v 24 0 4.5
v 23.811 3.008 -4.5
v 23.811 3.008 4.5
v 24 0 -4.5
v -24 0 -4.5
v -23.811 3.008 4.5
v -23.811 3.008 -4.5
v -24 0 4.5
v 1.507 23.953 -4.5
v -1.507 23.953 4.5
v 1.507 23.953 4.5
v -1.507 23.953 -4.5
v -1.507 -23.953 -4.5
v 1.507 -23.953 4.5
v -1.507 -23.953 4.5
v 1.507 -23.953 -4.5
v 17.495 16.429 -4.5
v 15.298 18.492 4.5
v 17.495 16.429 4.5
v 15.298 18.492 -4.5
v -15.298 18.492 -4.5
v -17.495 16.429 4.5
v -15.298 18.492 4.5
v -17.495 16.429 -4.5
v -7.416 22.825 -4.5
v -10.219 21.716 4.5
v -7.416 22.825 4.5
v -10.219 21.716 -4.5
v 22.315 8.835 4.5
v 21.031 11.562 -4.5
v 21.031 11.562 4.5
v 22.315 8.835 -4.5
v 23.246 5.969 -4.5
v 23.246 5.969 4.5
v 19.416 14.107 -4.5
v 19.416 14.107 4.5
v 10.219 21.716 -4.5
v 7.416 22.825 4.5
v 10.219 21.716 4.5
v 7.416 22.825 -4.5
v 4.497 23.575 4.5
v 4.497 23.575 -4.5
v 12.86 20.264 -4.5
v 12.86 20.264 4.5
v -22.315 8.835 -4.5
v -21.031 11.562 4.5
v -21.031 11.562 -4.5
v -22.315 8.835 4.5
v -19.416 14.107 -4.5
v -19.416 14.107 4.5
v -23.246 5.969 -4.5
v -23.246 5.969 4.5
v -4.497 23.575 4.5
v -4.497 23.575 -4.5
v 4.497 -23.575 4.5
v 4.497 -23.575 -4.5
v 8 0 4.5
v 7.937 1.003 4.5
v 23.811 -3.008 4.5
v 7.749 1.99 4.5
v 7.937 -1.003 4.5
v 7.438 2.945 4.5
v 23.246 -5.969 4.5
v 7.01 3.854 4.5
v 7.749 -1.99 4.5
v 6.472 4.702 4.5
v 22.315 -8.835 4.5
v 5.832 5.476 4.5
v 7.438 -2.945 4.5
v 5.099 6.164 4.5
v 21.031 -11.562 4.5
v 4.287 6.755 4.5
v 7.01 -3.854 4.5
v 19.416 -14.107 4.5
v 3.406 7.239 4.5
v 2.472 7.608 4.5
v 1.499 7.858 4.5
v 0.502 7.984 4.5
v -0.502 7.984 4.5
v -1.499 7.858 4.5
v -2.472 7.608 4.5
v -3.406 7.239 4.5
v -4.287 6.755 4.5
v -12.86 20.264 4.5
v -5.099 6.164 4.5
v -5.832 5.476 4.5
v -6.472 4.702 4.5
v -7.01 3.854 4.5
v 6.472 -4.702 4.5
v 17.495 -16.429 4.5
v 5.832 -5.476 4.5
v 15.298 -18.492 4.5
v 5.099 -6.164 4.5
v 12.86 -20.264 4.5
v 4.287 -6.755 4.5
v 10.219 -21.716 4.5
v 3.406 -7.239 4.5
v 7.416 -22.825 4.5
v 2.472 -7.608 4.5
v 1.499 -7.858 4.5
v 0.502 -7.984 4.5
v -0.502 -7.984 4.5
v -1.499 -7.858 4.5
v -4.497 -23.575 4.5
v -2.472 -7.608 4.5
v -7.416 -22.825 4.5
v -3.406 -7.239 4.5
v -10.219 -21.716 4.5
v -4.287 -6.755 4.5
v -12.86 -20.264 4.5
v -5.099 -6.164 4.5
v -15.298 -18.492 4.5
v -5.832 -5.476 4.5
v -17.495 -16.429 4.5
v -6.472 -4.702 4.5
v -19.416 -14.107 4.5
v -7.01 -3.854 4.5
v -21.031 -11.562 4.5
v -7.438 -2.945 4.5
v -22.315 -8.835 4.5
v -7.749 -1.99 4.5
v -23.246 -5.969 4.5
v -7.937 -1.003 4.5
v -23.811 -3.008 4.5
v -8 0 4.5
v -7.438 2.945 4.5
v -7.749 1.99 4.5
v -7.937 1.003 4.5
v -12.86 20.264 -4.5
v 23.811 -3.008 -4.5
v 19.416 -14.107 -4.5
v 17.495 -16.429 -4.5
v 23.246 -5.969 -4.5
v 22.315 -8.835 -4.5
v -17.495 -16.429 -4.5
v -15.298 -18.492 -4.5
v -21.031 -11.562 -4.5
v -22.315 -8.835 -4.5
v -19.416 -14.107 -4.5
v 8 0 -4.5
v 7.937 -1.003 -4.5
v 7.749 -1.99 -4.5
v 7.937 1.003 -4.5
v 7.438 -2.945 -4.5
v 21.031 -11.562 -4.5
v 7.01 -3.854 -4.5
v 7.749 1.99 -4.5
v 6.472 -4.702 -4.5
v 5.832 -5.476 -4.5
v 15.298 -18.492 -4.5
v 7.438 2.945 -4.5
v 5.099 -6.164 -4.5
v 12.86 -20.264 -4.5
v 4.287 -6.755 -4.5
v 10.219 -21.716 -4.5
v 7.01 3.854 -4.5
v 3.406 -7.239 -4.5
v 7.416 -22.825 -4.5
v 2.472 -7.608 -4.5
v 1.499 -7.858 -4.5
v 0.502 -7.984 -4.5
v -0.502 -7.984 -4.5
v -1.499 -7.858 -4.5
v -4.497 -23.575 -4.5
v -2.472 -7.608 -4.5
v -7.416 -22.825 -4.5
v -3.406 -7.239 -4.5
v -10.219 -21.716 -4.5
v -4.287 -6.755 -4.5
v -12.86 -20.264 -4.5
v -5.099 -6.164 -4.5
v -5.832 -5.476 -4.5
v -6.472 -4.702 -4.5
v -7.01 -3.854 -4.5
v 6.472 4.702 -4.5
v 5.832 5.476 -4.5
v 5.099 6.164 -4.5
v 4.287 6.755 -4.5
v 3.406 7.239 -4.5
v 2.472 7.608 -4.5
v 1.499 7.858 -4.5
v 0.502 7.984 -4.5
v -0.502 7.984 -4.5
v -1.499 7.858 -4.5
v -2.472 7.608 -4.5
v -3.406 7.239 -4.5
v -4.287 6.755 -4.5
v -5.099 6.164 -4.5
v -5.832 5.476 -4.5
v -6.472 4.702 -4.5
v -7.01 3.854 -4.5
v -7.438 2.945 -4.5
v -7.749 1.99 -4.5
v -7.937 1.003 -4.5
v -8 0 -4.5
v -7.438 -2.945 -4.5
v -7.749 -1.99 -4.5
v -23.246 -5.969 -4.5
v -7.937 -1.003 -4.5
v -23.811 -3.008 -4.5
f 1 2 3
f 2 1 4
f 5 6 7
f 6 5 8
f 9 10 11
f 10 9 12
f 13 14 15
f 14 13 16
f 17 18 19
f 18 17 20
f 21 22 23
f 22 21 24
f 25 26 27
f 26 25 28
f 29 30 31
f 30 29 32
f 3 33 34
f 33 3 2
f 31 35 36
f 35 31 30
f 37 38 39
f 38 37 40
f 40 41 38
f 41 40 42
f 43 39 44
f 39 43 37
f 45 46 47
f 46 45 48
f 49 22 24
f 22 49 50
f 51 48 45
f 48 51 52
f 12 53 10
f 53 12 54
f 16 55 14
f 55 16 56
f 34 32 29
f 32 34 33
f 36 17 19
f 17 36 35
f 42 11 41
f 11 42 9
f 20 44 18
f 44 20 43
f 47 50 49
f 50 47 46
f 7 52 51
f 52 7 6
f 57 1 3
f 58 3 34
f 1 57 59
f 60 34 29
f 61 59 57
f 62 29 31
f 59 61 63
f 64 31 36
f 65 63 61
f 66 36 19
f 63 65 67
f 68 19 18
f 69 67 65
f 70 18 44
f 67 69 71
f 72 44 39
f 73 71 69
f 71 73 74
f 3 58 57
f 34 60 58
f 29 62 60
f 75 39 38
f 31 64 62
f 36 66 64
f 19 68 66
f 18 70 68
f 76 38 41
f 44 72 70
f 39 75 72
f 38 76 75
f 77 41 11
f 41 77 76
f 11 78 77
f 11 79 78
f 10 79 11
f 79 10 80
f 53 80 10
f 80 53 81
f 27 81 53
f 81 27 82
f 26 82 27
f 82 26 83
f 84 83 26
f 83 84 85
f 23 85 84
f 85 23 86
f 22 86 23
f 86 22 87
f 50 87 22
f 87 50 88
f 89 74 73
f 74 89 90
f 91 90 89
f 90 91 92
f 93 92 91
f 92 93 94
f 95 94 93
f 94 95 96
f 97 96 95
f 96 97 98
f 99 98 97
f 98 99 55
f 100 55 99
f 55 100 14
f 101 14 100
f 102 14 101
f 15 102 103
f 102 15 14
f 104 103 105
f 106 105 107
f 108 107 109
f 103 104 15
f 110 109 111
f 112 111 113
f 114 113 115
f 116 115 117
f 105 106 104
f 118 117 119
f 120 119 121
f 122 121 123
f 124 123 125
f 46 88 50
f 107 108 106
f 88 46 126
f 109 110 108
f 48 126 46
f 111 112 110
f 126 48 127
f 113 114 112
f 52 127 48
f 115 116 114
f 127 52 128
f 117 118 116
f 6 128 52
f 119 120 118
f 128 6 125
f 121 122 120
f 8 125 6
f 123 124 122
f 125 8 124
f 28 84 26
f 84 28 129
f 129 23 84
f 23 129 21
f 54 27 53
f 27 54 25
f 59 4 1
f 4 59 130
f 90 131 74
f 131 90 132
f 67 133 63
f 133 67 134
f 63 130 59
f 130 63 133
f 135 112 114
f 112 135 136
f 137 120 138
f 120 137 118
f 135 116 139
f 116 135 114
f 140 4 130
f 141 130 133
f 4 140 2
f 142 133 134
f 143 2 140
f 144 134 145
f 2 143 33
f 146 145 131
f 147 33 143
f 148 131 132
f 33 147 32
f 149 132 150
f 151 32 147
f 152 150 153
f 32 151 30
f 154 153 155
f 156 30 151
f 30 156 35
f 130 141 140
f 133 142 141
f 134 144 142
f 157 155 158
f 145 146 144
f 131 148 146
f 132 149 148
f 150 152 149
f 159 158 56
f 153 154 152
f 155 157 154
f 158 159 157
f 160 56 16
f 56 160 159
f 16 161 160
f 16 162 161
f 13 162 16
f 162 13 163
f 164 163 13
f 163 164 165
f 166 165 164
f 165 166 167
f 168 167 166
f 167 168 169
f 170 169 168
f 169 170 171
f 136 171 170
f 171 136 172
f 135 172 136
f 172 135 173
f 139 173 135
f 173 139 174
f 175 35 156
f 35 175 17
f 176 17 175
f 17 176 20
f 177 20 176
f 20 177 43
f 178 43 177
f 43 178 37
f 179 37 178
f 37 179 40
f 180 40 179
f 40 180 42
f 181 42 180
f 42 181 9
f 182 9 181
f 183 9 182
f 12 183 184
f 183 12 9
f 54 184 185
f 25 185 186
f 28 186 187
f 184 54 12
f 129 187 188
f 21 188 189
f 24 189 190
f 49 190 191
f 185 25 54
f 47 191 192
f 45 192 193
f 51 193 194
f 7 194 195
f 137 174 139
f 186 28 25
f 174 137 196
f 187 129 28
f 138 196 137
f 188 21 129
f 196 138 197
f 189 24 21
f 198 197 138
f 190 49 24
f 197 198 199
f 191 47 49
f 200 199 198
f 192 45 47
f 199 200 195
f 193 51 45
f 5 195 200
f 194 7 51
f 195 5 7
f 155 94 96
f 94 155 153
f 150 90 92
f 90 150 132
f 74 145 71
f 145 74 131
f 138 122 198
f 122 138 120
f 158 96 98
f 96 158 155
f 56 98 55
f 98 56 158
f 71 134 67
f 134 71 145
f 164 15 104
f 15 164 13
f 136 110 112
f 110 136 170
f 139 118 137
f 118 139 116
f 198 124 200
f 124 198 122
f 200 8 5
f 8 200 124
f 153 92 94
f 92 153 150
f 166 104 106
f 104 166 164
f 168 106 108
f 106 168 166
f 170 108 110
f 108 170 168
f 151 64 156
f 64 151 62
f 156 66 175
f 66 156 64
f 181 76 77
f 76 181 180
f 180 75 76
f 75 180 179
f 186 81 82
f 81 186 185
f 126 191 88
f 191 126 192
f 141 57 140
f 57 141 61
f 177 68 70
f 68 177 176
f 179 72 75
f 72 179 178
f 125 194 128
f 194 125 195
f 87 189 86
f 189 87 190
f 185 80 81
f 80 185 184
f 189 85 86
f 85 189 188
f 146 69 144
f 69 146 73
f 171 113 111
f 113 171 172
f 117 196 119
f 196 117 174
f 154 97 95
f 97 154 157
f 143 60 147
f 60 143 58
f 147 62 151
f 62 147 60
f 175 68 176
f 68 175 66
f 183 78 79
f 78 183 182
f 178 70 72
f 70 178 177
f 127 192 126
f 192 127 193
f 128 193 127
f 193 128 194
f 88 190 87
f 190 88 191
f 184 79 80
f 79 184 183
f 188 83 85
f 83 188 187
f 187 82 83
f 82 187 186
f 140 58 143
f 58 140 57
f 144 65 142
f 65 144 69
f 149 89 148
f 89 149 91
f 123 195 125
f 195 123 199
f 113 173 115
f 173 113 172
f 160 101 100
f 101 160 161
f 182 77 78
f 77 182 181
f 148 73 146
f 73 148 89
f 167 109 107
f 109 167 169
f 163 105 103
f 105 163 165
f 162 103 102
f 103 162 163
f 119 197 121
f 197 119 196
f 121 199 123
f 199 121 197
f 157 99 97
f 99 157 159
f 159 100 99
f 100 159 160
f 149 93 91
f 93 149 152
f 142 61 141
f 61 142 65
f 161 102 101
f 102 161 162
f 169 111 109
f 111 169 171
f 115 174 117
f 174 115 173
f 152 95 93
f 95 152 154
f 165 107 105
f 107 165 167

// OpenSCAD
$fn = 50;


difference() {
	union() {
		translate(v = [0, 0, -4.5000000000]) {
			cylinder(h = 9, r = 24.0000000000);
		}
	}
	union() {
		translate(v = [0, 0, -100.0000000000]) {
			cylinder(h = 200, r = 8);
		}
	}
}
